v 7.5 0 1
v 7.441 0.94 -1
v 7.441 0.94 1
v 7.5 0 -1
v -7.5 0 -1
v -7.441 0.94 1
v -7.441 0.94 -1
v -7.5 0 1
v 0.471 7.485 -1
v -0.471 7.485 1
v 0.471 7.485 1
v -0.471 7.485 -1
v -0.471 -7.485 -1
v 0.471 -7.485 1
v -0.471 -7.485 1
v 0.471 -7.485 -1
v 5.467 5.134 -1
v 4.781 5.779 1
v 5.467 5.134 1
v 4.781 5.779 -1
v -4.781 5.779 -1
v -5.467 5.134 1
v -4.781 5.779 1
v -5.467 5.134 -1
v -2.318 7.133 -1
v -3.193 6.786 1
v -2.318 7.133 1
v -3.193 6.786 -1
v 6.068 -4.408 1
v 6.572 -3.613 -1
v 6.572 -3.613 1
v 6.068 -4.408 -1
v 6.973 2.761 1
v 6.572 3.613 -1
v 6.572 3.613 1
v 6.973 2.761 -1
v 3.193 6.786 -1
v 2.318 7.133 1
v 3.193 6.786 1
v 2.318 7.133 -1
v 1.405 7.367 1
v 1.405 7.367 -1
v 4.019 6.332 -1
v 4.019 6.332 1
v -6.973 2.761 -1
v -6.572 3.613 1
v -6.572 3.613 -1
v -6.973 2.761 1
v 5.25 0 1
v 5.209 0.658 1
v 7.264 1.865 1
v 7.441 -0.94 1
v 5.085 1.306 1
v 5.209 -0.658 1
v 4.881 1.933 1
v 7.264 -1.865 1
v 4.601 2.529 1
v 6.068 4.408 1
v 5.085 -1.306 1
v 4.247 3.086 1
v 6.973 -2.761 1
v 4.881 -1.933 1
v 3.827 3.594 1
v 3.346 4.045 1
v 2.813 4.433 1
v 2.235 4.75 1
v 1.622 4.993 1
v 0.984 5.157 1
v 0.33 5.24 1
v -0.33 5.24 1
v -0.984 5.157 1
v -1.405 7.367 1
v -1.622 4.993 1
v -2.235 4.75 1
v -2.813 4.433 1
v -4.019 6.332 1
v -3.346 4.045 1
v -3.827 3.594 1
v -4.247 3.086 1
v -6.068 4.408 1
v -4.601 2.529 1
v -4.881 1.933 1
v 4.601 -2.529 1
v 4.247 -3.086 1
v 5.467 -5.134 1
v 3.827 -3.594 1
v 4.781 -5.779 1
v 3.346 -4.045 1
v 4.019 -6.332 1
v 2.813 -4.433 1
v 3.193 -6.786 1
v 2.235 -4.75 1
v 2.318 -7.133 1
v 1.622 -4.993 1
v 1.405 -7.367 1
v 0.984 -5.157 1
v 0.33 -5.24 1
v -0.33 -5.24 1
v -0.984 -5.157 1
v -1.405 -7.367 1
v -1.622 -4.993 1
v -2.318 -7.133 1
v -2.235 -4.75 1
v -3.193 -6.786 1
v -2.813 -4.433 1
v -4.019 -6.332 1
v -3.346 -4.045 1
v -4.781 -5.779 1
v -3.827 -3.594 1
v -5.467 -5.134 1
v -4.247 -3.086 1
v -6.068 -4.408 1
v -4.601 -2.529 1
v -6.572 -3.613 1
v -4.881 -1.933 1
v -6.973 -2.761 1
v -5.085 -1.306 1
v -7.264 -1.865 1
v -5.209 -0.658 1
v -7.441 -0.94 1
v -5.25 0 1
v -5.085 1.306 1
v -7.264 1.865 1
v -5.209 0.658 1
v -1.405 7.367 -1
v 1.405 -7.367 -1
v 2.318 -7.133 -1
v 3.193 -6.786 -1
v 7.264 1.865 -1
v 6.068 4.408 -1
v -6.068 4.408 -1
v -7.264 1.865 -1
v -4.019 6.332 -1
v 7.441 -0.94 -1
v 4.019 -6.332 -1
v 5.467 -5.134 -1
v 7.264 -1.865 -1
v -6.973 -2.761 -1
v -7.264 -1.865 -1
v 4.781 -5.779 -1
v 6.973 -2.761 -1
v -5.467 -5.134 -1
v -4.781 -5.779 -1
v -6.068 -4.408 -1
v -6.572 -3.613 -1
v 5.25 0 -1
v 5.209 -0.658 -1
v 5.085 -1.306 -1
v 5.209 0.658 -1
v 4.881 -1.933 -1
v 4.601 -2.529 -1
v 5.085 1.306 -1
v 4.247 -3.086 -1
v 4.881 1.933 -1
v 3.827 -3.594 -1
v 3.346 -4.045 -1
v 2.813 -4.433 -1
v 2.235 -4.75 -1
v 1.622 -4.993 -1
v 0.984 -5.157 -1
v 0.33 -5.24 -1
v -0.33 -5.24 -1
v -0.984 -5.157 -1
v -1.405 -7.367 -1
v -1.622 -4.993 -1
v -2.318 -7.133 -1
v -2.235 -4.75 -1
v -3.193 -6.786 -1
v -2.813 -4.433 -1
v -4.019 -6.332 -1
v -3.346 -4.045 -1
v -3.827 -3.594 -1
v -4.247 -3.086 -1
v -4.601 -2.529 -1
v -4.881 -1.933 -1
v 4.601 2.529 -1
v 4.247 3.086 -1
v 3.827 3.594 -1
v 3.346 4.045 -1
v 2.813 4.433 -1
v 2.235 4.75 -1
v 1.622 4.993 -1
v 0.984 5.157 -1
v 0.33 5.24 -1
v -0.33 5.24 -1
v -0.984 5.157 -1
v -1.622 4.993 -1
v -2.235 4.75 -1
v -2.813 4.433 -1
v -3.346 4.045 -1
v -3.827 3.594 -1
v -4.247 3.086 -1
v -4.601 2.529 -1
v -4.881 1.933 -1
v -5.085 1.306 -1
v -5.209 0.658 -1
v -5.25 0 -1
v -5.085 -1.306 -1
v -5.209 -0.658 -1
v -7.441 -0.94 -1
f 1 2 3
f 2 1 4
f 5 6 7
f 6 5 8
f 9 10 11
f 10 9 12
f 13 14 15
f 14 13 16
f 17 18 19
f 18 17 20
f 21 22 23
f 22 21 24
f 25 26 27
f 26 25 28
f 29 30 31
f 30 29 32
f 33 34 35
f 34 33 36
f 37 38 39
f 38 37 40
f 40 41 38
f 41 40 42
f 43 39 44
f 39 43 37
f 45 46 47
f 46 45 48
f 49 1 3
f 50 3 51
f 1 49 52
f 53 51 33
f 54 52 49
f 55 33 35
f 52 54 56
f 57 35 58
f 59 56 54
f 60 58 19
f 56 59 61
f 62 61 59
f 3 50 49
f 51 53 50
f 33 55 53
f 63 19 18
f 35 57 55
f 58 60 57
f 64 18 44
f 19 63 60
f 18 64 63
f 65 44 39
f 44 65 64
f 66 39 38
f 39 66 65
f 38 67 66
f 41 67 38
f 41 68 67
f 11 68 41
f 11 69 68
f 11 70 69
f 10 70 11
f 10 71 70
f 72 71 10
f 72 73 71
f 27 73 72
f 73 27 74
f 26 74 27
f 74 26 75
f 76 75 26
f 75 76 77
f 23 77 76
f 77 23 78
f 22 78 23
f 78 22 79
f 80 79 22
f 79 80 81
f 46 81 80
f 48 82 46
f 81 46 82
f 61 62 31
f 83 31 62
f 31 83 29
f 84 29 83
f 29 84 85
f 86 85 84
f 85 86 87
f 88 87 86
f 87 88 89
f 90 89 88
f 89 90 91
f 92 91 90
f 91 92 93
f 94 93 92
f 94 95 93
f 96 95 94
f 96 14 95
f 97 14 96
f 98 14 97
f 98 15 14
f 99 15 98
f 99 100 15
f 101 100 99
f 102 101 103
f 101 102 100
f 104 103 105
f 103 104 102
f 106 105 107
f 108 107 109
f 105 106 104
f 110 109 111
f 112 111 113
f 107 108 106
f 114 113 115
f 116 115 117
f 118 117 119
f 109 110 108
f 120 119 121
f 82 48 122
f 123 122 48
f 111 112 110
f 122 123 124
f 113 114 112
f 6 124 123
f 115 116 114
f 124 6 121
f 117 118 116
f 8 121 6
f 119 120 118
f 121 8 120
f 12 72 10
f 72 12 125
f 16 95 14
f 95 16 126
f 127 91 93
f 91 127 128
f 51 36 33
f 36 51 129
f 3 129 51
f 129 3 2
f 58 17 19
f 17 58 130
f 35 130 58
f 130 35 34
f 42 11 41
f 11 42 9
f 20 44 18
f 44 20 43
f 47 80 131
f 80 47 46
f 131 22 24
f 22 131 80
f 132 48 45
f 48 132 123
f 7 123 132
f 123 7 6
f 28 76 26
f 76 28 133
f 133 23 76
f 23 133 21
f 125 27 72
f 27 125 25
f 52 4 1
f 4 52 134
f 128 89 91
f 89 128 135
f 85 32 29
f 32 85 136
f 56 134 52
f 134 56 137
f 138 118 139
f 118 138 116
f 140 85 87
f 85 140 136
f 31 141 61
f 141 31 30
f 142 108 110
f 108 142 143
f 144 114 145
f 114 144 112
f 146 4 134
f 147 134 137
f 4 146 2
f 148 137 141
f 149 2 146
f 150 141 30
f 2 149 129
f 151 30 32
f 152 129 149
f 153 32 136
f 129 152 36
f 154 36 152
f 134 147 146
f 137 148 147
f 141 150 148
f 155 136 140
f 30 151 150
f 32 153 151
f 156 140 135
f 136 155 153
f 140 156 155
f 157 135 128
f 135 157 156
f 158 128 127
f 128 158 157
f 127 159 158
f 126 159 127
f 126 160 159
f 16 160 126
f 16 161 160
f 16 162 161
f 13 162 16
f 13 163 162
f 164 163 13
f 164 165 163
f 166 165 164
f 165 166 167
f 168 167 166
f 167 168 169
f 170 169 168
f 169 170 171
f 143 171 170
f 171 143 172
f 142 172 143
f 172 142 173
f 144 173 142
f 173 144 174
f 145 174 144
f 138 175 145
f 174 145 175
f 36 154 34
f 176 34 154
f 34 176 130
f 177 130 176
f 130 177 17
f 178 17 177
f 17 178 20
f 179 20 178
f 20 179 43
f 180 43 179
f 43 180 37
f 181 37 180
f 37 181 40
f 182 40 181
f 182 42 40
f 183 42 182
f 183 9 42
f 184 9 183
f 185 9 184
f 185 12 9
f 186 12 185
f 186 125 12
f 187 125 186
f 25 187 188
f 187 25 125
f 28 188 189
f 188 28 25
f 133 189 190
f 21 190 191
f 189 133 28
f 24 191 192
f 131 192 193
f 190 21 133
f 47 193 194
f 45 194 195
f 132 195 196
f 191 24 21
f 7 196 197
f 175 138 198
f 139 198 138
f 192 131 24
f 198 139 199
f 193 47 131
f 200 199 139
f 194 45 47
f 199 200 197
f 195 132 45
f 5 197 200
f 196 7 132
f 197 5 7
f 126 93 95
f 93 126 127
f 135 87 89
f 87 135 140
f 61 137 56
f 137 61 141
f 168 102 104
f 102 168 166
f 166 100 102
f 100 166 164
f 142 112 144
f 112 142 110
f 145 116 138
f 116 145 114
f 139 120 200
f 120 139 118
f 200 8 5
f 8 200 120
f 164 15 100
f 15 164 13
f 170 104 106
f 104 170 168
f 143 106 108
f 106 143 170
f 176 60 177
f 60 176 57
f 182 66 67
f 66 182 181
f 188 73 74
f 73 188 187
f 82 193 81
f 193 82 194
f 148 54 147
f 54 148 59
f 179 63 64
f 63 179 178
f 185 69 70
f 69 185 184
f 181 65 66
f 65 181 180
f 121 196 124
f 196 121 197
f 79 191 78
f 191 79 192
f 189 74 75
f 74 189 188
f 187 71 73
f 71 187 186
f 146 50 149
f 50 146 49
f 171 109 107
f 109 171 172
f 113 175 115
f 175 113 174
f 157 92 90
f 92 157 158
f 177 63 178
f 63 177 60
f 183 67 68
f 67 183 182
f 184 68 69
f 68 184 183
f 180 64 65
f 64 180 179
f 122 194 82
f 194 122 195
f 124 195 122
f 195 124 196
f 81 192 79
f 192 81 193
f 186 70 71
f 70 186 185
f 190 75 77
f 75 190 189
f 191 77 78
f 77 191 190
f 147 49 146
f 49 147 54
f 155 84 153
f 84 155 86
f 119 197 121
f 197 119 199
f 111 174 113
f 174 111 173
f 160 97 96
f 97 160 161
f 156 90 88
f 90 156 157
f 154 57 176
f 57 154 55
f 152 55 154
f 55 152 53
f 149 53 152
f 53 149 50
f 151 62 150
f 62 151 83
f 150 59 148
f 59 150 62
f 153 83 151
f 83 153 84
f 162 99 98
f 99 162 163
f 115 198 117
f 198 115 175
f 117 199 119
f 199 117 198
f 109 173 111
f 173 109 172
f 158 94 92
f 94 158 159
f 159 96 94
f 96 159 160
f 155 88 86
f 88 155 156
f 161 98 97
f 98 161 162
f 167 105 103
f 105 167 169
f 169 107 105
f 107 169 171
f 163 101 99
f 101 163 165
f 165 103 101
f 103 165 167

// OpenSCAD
$fn = 50;


difference() {
	union() {
		translate(v = [0, 0, -1.0000000000]) {
			cylinder(h = 2, r = 7.5000000000);
		}
	}
	union() {
		translate(v = [0, 0, -100.0000000000]) {
			cylinder(h = 200, r = 5.2500000000);
		}
	}
}
